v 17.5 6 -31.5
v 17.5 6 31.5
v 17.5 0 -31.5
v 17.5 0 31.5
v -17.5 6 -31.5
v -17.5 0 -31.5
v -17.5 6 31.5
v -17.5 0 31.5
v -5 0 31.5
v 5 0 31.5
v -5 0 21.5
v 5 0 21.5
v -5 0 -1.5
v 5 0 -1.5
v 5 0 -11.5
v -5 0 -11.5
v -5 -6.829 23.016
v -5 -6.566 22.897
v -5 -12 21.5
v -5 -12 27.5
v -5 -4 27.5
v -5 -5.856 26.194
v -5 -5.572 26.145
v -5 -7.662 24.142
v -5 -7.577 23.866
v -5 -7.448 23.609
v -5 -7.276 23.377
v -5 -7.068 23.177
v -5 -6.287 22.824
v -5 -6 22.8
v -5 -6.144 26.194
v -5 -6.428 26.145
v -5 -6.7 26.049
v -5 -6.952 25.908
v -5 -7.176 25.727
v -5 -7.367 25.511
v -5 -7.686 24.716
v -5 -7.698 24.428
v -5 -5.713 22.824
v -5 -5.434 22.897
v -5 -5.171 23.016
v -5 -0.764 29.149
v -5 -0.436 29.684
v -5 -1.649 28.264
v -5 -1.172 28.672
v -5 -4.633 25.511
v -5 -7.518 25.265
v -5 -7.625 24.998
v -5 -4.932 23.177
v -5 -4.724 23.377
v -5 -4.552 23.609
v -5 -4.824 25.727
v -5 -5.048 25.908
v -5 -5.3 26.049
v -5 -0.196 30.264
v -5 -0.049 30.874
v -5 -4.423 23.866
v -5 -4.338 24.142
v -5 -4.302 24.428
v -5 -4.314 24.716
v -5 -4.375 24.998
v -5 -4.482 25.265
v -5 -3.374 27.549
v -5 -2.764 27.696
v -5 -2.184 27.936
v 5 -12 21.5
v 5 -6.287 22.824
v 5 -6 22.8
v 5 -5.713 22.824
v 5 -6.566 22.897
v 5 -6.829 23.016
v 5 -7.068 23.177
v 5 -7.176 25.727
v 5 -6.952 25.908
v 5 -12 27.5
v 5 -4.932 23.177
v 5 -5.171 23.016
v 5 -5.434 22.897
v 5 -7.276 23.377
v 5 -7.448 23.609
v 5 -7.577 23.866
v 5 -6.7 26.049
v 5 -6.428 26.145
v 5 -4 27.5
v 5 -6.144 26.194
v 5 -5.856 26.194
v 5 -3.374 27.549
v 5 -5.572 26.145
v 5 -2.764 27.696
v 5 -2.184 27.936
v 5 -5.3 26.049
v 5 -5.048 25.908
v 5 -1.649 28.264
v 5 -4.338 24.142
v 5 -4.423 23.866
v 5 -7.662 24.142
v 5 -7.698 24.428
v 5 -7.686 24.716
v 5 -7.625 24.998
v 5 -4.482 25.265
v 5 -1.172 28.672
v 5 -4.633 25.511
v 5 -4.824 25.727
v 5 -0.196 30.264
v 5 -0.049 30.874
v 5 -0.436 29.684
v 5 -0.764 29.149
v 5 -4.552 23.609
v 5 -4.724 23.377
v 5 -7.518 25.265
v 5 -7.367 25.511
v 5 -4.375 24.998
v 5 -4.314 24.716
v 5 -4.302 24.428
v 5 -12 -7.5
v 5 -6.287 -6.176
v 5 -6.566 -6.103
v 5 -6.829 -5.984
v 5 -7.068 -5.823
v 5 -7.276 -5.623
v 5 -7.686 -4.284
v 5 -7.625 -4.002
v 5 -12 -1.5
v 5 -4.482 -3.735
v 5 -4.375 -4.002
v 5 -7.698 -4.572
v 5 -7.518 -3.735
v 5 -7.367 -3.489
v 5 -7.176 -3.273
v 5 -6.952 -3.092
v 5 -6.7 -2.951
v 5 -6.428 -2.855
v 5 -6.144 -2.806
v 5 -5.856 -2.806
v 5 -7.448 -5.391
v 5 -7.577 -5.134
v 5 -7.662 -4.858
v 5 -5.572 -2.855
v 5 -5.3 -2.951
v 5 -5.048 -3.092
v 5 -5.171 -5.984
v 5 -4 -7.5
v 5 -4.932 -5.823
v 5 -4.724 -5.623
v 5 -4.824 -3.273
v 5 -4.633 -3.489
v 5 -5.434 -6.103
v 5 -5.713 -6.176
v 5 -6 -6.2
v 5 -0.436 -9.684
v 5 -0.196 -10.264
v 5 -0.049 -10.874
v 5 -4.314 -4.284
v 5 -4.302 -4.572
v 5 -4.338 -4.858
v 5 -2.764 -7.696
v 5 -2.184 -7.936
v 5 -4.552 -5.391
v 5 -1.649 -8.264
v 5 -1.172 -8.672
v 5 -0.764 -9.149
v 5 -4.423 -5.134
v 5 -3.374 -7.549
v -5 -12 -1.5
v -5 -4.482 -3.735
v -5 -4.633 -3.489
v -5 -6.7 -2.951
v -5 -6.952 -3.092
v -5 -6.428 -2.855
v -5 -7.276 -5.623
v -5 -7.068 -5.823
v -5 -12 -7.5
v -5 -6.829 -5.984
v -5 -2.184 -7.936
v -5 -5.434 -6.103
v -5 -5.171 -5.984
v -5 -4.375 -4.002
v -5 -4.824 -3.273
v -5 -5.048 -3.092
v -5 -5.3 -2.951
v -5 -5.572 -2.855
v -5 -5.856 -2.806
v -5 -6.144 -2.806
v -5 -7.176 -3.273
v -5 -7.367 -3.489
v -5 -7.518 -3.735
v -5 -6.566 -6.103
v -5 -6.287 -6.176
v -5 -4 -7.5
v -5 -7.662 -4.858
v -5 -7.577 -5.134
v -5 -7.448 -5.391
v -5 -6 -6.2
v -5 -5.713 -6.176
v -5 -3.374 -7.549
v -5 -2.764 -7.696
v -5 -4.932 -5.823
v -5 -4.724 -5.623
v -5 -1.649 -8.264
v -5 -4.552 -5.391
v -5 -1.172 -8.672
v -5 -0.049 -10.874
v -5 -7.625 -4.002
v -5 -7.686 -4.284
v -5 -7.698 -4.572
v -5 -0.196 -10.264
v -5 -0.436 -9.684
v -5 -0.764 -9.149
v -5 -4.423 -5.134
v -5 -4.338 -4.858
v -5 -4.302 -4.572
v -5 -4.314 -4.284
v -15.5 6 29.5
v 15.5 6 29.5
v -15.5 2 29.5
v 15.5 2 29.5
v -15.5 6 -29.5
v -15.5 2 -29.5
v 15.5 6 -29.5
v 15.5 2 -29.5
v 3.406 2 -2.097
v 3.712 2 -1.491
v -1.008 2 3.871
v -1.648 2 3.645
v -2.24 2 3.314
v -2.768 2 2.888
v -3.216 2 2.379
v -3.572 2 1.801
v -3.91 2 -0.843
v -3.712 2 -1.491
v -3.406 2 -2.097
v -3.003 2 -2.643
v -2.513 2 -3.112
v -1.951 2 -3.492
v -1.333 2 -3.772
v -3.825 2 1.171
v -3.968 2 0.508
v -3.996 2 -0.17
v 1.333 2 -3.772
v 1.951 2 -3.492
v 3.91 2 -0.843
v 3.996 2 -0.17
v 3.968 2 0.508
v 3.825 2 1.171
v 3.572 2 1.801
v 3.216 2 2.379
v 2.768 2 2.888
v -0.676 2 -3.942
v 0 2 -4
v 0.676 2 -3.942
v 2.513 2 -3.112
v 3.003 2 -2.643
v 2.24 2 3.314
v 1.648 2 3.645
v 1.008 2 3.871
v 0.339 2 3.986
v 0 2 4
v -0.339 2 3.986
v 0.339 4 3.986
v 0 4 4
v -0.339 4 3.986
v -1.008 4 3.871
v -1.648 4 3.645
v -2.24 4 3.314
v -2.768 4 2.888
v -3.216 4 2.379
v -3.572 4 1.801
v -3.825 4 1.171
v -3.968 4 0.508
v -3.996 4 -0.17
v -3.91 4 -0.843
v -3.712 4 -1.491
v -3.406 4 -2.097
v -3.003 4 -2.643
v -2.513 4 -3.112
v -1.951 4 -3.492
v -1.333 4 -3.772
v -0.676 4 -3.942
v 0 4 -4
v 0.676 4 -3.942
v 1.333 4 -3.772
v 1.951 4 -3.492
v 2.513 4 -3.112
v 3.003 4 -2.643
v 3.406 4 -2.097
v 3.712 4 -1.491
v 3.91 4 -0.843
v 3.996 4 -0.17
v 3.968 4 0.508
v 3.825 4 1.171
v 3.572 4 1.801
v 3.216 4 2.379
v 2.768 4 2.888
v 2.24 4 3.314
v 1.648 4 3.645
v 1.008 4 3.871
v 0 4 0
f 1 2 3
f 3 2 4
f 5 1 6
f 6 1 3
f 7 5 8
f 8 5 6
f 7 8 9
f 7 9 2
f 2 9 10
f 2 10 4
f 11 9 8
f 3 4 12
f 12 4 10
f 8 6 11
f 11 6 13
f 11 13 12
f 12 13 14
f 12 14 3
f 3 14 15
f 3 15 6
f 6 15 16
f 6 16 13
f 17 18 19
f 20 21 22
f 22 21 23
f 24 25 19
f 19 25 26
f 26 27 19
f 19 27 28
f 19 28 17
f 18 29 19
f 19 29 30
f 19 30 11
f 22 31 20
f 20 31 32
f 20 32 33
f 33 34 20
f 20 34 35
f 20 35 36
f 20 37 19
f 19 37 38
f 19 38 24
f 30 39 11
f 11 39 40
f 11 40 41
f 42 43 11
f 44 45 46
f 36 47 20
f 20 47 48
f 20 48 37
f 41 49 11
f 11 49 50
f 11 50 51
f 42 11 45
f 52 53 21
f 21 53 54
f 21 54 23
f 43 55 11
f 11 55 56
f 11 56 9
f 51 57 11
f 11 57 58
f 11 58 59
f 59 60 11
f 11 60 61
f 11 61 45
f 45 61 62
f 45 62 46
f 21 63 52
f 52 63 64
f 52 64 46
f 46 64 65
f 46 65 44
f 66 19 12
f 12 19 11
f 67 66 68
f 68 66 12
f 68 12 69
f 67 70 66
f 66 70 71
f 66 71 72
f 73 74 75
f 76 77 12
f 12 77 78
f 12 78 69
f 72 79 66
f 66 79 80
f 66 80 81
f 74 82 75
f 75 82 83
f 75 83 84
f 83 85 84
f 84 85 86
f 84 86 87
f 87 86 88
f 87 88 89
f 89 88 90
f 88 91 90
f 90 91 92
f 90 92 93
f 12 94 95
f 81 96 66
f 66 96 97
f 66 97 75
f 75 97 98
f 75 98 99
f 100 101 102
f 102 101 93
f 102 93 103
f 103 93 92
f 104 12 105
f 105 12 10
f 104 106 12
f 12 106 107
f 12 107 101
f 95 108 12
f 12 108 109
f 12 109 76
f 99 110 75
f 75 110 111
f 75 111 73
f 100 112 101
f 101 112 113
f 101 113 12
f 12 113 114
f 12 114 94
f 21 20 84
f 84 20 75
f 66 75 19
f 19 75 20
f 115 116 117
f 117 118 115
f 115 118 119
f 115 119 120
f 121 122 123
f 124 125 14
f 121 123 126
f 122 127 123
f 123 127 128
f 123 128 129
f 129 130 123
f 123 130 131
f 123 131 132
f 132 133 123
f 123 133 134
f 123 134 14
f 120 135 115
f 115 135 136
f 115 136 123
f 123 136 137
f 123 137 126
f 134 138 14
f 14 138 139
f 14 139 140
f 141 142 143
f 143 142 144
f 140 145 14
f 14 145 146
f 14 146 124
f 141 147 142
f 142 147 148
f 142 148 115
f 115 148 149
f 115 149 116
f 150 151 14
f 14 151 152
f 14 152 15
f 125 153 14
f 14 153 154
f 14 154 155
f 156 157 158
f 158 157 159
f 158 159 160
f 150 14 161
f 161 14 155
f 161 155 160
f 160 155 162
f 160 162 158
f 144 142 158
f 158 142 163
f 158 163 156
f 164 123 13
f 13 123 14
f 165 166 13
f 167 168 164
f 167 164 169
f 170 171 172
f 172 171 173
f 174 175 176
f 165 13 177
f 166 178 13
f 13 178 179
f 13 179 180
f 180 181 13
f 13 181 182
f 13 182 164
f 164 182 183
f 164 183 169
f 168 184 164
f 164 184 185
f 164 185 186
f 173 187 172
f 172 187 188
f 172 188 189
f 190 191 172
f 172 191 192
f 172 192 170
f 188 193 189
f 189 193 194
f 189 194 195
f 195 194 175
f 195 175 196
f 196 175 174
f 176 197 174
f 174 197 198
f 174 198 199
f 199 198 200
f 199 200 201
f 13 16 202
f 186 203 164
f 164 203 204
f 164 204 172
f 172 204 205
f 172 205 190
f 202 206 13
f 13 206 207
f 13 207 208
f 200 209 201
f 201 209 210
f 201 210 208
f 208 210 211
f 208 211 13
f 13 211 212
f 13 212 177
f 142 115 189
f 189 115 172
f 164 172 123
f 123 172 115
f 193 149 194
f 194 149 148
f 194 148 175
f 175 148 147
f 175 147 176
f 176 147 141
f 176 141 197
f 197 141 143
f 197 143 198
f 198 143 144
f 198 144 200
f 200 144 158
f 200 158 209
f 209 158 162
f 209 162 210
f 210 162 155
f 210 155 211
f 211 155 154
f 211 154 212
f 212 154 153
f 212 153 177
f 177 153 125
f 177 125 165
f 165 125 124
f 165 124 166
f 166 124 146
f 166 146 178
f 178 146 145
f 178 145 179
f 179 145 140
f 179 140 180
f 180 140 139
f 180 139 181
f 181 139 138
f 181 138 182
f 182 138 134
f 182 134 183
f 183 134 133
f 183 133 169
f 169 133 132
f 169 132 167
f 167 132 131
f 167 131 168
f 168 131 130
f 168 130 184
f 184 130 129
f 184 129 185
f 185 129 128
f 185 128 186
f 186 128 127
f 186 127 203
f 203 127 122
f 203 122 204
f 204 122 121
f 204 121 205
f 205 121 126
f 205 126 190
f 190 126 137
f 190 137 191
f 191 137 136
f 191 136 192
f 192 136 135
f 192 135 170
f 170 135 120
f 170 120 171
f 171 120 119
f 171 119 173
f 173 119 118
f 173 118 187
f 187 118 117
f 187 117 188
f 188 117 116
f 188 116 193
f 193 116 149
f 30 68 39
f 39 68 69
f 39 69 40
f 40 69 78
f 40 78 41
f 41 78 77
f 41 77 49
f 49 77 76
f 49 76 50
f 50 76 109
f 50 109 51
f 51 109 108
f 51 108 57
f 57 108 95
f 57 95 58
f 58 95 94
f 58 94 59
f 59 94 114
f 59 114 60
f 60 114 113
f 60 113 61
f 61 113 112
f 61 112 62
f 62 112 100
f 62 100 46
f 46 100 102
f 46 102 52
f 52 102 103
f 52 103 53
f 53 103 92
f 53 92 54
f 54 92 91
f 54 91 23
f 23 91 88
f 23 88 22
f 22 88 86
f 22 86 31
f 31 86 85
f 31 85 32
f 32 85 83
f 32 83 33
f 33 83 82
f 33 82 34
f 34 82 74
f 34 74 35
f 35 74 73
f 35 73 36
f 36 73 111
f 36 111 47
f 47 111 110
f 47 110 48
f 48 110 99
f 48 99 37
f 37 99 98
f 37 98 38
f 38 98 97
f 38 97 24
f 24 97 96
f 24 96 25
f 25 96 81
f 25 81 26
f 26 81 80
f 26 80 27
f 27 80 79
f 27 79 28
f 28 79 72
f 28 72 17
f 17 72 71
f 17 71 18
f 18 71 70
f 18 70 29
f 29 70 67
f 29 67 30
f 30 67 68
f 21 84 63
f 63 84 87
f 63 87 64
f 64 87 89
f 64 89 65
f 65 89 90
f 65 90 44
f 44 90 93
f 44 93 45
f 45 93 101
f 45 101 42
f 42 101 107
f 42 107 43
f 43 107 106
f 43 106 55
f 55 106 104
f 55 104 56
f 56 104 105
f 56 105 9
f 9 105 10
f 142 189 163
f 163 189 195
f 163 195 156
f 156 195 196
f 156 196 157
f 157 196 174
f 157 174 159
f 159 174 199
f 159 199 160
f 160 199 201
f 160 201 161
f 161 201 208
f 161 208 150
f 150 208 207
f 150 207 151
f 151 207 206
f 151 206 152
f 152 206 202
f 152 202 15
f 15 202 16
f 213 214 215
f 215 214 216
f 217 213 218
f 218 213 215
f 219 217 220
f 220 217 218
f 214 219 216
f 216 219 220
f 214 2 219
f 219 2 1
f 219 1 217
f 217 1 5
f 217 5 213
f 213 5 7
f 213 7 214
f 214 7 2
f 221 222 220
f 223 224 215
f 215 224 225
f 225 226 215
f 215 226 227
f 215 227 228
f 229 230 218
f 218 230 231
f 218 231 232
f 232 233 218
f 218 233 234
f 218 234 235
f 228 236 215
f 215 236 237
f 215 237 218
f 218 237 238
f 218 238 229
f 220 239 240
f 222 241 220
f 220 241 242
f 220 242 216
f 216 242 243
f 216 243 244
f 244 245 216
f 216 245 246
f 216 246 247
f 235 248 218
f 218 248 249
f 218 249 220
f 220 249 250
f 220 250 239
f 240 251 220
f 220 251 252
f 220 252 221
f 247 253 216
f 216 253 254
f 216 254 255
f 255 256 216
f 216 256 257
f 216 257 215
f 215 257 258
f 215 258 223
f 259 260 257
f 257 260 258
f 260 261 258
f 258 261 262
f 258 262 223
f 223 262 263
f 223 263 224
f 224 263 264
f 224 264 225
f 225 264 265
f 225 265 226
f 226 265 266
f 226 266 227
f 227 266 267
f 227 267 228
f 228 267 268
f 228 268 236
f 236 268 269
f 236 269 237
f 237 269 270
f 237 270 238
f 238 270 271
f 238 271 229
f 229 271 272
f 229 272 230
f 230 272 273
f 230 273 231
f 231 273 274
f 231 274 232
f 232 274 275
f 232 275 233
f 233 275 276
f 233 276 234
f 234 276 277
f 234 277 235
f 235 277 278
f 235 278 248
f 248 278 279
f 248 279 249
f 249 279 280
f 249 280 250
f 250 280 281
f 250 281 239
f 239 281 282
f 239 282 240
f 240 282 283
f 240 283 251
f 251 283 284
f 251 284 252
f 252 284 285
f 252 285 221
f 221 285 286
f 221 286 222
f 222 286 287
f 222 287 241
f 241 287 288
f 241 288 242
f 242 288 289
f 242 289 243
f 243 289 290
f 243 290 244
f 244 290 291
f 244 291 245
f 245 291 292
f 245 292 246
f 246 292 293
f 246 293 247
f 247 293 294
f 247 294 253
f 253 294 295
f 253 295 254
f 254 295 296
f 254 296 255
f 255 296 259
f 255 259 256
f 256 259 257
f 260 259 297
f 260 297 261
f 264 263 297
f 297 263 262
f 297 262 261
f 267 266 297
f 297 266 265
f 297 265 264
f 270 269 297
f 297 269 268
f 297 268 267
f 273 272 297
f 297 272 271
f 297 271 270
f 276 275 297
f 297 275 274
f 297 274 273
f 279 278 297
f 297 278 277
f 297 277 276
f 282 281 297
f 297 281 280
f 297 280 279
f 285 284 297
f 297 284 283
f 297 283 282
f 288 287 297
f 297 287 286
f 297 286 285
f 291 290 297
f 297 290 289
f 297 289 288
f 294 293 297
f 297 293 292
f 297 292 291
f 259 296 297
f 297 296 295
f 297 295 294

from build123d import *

# Parameters (mm, degrees)
SKETCH1_W           = 35
SKETCH1_H           = 63
BOSS_EXTRUDE1_DEPTH = 2
SKETCH2_W           = 10
SKETCH2_H           = 6
BOSS_EXTRUDE2_DEPTH = 12
SKETCH3_R           = 1.7
CUT_EXTRUDE1_DEPTH  = 10
FILLET1_R           = 4
SKETCH4_W           = 35
SKETCH4_H           = 63
SKETCH4_W_2         = 31
SKETCH4_H_2         = 59
BOSS_EXTRUDE4_DEPTH = 4
SKETCH5_R           = 4
BOSS_EXTRUDE5_DEPTH = 2


with BuildPart() as part:
    # Sketch1 → Boss-Extrude1 (new body)
    with BuildSketch(Plane(origin=(0, 0, 0), x_dir=(1, 0, 0), z_dir=(0, 1, 0))):
        Rectangle(SKETCH1_W, SKETCH1_H)
    extrude(amount=BOSS_EXTRUDE1_DEPTH)

    # Sketch2 → Boss-Extrude2 (add)
    with BuildSketch(Plane.XZ):
        with Locations((0, 24.5)):
            Rectangle(SKETCH2_W, SKETCH2_H)
        with Locations((0, -4.5)):
            Rectangle(SKETCH2_W, SKETCH2_H)
    extrude(amount=BOSS_EXTRUDE2_DEPTH)

    # Sketch3 → Cut-Extrude1 (cut)
    with BuildSketch(Plane(origin=(5, 0, 0), x_dir=(0, 0, -1), z_dir=(1, 0, 0))):
        with Locations((4.5, -6)):
            Circle(SKETCH3_R)
        with Locations((-24.5, -6)):
            Circle(SKETCH3_R)
    extrude(amount=-CUT_EXTRUDE1_DEPTH, mode=Mode.SUBTRACT)

    # Fillet1
    fillet1_edges = [part.edges().sort_by_distance(p)[0] for p in [
        (0, 0, 27.5),
        (0, 0, -7.5),
    ]]
    fillet(fillet1_edges, radius=FILLET1_R - 0.0001)  # a hair under: the kernel refuses the full size

    # Sketch4 → Boss-Extrude4 (add)
    with BuildSketch(Plane(origin=(0, 2, 0), x_dir=(1, 0, 0), z_dir=(0, 1, 0))):
        Rectangle(SKETCH4_W, SKETCH4_H)
        Rectangle(SKETCH4_W_2, SKETCH4_H_2, mode=Mode.SUBTRACT)
    extrude(amount=BOSS_EXTRUDE4_DEPTH)

    # Sketch5 → Boss-Extrude5 (add)
    with BuildSketch(Plane(origin=(0, 2, 0), x_dir=(1, 0, 0), z_dir=(0, 1, 0))):
        with Locations(Location((0, 0, 0), (0, 0, 270))):
            Circle(SKETCH5_R)
    extrude(amount=BOSS_EXTRUDE5_DEPTH)


solid = part.part
